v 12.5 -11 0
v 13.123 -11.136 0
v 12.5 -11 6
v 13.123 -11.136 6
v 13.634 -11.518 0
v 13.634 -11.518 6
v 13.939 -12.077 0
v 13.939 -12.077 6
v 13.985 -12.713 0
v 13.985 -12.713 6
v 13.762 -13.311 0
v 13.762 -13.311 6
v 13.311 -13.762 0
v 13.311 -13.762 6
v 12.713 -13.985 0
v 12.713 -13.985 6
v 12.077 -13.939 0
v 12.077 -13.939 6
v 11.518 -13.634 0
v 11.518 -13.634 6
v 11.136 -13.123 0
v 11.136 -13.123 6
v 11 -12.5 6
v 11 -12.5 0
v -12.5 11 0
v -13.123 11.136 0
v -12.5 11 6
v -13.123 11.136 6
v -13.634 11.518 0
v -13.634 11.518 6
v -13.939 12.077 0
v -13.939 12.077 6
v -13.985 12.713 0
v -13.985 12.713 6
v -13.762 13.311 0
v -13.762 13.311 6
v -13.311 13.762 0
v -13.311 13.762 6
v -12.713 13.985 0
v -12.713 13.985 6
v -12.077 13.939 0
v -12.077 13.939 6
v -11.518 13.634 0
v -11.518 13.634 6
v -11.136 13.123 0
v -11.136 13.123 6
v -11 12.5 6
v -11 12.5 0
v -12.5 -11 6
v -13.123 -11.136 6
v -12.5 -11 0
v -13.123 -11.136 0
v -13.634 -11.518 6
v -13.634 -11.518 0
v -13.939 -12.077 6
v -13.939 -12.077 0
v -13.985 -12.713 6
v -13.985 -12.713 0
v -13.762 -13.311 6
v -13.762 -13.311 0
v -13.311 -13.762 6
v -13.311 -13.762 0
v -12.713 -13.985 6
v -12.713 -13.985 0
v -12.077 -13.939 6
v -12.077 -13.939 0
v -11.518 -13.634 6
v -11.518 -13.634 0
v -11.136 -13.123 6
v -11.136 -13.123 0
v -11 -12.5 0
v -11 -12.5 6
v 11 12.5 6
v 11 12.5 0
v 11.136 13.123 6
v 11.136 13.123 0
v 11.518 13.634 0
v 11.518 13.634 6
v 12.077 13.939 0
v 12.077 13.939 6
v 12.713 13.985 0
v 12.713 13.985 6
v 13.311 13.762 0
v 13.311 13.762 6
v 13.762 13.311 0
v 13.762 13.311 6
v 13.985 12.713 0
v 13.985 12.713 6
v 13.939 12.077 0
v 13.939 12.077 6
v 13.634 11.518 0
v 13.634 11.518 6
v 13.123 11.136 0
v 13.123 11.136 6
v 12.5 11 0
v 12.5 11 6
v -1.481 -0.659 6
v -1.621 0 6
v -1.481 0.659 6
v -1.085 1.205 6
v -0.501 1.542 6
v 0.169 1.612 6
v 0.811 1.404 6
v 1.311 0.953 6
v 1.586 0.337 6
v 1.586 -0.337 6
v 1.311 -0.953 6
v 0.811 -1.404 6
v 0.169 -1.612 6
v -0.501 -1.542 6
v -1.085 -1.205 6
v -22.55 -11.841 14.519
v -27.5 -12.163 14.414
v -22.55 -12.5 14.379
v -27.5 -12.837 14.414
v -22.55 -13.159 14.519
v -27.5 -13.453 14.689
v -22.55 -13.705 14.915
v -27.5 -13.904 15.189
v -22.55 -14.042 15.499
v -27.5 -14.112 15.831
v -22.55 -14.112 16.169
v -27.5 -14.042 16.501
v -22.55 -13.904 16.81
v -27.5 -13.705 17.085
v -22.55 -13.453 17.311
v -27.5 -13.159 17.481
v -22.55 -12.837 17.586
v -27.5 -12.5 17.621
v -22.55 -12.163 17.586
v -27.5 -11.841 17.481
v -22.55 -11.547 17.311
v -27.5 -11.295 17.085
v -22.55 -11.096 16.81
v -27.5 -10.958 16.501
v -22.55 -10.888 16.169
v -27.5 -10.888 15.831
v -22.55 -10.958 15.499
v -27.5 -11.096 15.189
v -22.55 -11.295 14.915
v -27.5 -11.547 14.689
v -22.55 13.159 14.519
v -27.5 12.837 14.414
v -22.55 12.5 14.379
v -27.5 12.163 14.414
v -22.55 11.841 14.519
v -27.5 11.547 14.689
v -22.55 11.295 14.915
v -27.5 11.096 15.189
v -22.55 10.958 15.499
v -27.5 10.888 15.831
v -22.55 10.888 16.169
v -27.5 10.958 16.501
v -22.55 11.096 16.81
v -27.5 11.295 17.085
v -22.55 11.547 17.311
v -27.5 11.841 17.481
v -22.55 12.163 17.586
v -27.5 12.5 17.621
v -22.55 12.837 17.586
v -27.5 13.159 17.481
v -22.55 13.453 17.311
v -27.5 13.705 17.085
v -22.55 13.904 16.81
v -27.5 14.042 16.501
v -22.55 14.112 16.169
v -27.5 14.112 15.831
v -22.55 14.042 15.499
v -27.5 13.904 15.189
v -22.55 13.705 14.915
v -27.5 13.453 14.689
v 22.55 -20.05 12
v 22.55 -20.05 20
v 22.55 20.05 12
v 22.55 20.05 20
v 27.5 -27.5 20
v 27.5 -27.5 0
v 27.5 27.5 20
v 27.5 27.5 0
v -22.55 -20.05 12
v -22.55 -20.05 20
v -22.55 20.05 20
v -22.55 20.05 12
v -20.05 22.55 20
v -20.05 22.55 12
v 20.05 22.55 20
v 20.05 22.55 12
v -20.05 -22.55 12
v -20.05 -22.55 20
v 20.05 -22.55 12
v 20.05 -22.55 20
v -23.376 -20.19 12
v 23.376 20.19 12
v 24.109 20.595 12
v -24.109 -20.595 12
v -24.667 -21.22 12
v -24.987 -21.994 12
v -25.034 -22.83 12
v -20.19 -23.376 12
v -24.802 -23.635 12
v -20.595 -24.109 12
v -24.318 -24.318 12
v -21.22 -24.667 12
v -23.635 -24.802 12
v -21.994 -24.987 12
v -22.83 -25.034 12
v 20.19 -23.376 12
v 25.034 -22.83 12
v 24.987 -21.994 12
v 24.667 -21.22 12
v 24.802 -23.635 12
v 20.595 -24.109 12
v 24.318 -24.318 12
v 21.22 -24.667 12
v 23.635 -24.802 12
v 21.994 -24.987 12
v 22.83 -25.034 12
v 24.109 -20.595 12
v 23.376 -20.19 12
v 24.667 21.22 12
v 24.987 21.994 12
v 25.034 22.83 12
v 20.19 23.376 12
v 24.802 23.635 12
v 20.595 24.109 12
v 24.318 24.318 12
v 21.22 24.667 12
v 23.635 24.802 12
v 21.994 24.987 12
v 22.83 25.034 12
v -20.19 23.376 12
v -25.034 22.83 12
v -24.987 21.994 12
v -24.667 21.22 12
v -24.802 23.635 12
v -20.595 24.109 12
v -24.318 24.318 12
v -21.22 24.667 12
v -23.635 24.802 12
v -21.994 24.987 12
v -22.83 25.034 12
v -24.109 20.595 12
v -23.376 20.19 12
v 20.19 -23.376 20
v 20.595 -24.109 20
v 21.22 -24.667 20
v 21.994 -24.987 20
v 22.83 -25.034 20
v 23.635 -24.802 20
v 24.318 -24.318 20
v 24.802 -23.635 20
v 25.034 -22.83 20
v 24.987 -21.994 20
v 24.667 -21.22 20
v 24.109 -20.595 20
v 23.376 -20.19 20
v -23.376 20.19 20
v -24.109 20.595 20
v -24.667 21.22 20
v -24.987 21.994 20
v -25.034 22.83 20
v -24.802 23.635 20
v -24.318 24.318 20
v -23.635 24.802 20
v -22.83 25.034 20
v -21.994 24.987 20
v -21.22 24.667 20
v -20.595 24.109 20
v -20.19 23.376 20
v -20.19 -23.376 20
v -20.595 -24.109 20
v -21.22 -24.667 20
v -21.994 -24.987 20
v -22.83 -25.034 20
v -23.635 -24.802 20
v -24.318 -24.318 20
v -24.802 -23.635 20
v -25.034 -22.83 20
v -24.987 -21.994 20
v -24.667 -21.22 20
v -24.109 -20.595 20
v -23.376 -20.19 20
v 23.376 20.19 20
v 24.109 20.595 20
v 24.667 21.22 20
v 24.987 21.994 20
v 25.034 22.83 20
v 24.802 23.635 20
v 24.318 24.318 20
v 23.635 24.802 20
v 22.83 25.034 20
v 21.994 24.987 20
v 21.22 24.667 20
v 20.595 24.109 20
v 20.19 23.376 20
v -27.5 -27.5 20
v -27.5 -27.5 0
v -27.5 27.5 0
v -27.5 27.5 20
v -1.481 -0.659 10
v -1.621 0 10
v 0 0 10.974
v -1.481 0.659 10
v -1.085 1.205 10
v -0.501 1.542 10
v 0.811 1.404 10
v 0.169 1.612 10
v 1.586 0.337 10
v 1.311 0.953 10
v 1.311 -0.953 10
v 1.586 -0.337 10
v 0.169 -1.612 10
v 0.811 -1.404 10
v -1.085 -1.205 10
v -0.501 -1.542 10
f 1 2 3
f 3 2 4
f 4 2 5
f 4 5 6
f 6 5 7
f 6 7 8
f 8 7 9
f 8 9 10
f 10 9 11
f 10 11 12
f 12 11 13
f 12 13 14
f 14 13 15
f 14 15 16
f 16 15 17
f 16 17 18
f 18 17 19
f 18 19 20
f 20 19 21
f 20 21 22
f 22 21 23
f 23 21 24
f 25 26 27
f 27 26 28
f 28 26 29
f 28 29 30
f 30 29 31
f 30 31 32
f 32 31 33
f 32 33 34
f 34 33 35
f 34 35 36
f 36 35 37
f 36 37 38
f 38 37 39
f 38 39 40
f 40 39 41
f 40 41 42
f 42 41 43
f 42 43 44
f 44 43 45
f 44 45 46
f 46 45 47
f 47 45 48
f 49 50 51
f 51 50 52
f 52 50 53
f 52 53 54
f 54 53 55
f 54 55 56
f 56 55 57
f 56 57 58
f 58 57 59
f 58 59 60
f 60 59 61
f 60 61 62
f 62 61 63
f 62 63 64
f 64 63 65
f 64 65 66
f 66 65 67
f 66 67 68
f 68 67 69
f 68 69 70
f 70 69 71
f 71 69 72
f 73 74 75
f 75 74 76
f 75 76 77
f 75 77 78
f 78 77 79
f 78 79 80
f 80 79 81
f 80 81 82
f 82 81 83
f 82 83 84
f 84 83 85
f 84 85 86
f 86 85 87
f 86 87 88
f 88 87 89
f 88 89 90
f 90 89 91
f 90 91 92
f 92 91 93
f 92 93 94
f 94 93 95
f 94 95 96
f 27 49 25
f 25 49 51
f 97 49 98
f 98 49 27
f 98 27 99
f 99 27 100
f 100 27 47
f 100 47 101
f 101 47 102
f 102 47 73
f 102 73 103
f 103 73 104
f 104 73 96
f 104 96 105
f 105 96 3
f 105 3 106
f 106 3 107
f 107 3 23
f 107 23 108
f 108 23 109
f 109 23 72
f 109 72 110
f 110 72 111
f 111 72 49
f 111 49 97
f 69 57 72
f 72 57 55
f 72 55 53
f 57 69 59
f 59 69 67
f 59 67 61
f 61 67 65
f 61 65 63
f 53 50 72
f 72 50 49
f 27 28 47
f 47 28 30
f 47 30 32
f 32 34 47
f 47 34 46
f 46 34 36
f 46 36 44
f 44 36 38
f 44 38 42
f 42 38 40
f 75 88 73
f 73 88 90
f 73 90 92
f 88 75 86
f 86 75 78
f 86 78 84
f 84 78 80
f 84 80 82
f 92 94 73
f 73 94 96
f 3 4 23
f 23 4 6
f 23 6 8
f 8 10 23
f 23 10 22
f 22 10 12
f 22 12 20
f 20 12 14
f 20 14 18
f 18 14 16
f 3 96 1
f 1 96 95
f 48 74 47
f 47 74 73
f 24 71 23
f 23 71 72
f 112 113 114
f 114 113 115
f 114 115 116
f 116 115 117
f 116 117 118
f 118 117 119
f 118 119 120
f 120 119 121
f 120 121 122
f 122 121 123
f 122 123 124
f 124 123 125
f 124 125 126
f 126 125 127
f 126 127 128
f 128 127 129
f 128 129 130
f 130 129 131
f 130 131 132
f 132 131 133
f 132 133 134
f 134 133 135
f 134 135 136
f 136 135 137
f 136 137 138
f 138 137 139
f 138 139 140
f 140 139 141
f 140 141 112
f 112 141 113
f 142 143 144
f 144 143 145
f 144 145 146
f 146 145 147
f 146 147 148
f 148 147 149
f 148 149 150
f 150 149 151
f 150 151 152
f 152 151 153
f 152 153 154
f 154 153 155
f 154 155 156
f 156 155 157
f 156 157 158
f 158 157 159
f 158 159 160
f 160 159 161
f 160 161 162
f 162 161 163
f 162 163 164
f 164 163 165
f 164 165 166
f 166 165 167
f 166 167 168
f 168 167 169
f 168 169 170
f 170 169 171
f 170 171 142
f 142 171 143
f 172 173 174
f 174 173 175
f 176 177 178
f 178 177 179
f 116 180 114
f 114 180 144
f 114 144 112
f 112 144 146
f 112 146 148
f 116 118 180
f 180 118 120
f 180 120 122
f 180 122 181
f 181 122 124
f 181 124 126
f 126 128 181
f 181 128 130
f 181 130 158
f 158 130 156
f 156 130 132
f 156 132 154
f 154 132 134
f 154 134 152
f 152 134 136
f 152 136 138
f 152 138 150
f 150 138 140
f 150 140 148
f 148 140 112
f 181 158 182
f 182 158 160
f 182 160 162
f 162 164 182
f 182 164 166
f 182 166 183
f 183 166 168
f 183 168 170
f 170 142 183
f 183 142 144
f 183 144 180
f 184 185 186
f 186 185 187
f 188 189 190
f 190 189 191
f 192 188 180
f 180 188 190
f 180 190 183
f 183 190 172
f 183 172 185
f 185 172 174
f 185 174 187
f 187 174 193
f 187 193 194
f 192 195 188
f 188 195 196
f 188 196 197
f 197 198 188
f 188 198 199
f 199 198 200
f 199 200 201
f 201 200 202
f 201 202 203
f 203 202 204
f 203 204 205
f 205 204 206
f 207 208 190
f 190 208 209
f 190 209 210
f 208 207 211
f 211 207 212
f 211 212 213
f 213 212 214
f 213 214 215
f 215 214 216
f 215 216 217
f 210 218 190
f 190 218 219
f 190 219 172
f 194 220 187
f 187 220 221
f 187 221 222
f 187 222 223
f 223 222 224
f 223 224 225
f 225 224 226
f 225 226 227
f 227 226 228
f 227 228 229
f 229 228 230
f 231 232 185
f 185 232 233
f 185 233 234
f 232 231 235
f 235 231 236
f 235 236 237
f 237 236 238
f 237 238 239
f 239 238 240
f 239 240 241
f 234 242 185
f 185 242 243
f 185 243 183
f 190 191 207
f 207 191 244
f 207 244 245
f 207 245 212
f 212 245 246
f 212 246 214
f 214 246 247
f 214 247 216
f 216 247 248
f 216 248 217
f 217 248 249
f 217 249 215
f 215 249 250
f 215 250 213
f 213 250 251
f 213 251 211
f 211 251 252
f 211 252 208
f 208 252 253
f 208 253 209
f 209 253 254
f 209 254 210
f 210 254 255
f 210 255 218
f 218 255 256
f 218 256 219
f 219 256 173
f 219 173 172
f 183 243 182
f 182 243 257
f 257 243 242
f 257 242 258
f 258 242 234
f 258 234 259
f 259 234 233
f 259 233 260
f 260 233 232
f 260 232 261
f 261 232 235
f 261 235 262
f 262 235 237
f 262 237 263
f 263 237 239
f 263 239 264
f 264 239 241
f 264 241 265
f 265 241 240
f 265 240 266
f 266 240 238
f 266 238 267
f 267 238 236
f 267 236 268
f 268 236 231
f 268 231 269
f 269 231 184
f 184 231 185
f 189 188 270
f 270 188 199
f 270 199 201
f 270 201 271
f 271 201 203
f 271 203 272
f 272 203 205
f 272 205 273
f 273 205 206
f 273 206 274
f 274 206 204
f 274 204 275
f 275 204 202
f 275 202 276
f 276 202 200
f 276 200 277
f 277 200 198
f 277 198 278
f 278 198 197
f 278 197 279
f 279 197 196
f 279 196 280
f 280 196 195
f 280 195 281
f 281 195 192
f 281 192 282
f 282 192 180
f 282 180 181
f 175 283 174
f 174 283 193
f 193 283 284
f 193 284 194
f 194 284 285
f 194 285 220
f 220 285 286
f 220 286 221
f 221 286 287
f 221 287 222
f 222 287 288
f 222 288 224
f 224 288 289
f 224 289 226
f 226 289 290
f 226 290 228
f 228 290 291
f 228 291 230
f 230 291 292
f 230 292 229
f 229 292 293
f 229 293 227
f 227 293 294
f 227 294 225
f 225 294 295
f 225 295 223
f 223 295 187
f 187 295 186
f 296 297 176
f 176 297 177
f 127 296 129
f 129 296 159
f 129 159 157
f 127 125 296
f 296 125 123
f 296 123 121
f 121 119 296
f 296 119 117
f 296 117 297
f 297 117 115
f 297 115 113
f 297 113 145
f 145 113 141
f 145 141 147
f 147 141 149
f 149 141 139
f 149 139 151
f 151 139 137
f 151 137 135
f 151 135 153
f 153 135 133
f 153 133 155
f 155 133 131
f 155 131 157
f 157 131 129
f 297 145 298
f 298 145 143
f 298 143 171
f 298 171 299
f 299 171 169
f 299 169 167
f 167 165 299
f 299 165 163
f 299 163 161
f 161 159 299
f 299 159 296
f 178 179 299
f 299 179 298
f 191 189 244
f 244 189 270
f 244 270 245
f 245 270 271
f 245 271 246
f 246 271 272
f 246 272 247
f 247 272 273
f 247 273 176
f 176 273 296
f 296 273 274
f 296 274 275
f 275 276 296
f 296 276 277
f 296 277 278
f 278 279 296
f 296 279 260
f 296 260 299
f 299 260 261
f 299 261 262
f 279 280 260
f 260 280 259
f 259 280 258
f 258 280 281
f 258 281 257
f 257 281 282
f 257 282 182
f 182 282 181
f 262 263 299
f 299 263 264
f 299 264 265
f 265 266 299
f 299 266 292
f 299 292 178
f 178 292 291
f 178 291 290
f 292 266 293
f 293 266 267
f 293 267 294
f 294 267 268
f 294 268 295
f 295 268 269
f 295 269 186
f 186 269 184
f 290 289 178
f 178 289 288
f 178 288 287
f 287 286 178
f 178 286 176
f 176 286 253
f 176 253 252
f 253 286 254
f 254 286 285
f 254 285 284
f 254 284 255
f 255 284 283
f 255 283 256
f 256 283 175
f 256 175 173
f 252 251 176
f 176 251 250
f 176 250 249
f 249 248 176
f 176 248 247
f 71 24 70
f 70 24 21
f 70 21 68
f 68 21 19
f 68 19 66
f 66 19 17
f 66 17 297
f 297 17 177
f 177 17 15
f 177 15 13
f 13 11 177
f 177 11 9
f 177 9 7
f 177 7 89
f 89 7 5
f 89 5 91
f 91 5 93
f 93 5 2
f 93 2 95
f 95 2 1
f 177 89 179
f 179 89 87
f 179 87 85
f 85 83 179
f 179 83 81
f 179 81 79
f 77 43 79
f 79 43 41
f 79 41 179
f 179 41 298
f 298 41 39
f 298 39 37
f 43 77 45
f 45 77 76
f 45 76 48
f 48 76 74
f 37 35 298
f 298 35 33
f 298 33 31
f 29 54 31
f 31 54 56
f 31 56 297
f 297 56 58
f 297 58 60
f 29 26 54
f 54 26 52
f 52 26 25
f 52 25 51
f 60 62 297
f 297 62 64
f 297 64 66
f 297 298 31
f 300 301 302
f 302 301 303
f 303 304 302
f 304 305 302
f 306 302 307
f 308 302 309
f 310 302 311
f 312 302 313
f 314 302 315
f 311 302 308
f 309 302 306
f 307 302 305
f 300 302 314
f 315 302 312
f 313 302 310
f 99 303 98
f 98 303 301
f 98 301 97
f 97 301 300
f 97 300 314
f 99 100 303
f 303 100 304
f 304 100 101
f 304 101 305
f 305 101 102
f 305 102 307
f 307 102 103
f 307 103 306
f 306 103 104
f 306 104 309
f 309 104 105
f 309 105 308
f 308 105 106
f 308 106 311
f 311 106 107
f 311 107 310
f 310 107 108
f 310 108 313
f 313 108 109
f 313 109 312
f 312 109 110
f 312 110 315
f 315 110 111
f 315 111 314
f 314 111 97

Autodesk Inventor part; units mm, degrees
ref_plane "YZ Plane" through (0, 0, 0) normal (1, 0, 0) x (0, 1, 0)
ref_plane "XZ Plane" through (0, 0, 0) normal (0, 1, 0) x (-1, 0, 0)
ref_plane "XY Plane" through (0, 0, 0) normal (0, 0, 1) x (1, 0, 0)
sketch "Sketch1" plane through (0, 0, 0) normal (0, 0, 1) x (1, 0, 0)
  line L0 (0, 38.5) -> (0, -38.5) construction
  line L1 (-38.5, 0) -> (38.5, 0) construction
  line L2 (-27.5, 27.5) -> (27.5, 27.5)
  line L3 (27.5, 27.5) -> (27.5, -27.5)
  line L4 (27.5, -27.5) -> (-27.5, -27.5)
  line L5 (-27.5, -27.5) -> (-27.5, 27.5)
  point P0 (0, 0)
  dimension "d0" = 55
  dimension "d1" = 55
extrude "Extrusion1" add sketch "Sketch1" along normal blind 20
sketch "Sketch4" plane through (0, 0, 20) normal (0, 0, 1) x (1, 0, 0)
  line L0 (-38.5, 0) -> (38.5, 0) construction
  line L1 (0, 38.5) -> (0, -38.5) construction
  line L2 (-22.55, 22.55) -> (22.55, 22.55) construction
  line L3 (22.55, 22.55) -> (22.55, -22.55) construction
  line L4 (22.55, -22.55) -> (-22.55, -22.55) construction
  line L5 (-22.55, -22.55) -> (-22.55, 22.55) construction
  point P0 (0, 0)
  dimension "d15" = 45.1
  dimension "d16" = 45.1
hole "Hole2" at (-22.55, 22.55, 20) at (22.55, 22.55, 20) at (22.55, -22.55, 20) at (-22.55, -22.55, 20) at (-22.55, 22.55, 20) at (22.55, 22.55, 20) direction (0, 0, -1) diameter 5 depth 8
sketch "Sketch5" plane through (0, 0, 20) normal (0, 0, 1) x (1, 0, 0)
  circle A0 centre (-22.55, 22.55) radius 2.5 projected
  circle A1 centre (22.55, -22.55) radius 2.5 projected
  line L0 (-22.55, 22.55) -> (22.55, 22.55)
  line L1 (22.55, 22.55) -> (22.55, -22.55)
  line L2 (22.55, -22.55) -> (-22.55, -22.55)
  line L3 (-22.55, -22.55) -> (-22.55, 22.55)
  point P0 (0, 0)
extrude "Extrusion3" cut sketch "Sketch5" against normal blind 8 contours L0 L1 A1 L2 L3 A0 | A0 L3 L0 | L1 L2 A1 picked at (-20.9042, 22.3646) picked at (22.003, -20.9868)
sketch "Sketch6" plane through (-27.5, -27.5, 0) normal (-1, 0, 0) x (0, 0, 1)
  line L0 (0, 55) -> (20, 55) projected
  line L1 (0, 0) -> (20, 0) projected
  line L2 (20, 7.45) -> (12, 7.45) construction
  line L3 (20, 47.55) -> (20, 7.45) construction
  line L4 (12, 47.55) -> (20, 47.55) construction
  line L5 (12, 7.45) -> (12, 47.55) construction
  line L6 (16, 47.55) -> (16, 7.45) construction
  point P0 (0, 27.5)
  point P1 (16, 40)
  point P2 (16, 15)
  dimension "d26" = 15
  dimension "d27" = 15
hole "Hole3" at (-27.5, 12.5, 16) at (-27.5, -12.5, 16) direction (1, 0, 0) diameter 3.242 end up to surface thread size "M4x0.7" class "6H" standard "ANSI Metric M Profile"
sketch "Sketch8" plane through (0, 0, 0) normal (0, 0, -1) x (-1, 0, 0)
  line L0 (27.5, 27.5) -> (-27.5, 27.5) construction
  line L1 (-27.5, 27.5) -> (-27.5, -27.5) construction
  line L2 (-27.5, -27.5) -> (27.5, -27.5) construction
  line L3 (27.5, -27.5) -> (27.5, 27.5) construction
  line L4 (0, -38.5) -> (0, 38.5) construction
  line L5 (-38.5, 0) -> (38.5, 0) construction
  line L6 (-12.5, -12.5) -> (12.5, -12.5)
  line L7 (12.5, -12.5) -> (12.5, 12.5)
  line L8 (12.5, 12.5) -> (-12.5, 12.5)
  line L9 (-12.5, 12.5) -> (-12.5, -12.5)
  point P0 (0, 0)
  dimension "d44" = 25
  dimension "d45" = 25
extrude "Extrusion4" cut sketch "Sketch8" against normal blind 6
sketch "Sketch9" plane through (0, 0, 0) normal (0, 0, -1) x (-1, 0, 0)
  line L0 (12.5, 12.5) -> (12.5, -12.5) construction
  line L1 (12.5, -12.5) -> (-12.5, -12.5) construction
  line L2 (-12.5, -12.5) -> (-12.5, 12.5) construction
  line L3 (-12.5, 12.5) -> (12.5, 12.5) construction
  line L4 (27.5, 27.5) -> (-27.5, 27.5) construction
  line L5 (-27.5, 27.5) -> (-27.5, -27.5) construction
  line L6 (-27.5, -27.5) -> (27.5, -27.5) construction
  line L7 (27.5, -27.5) -> (27.5, 27.5) construction
  line L8 (12.5, -12.5) -> (-12.5, -12.5) construction
  point P0 (0, 0)
hole "Hole5" at (-12.5, 12.5, 0) at (-12.5, -12.5, 0) at (12.5, -12.5, 0) at (12.5, 12.5, 0) direction (0, 0, 1) diameter 3 depth 6
sketch "Sketch10" plane through (0, 0, 6) normal (0, 0, -1) x (-1, 0, 0)
  point P0 (0, 0)
  point P1 (0, 0)
hole "Hole6" at (0, 0, 6) direction (0, 0, 1) diameter 3.242 depth 4 tip angle 118 thread size "M4x0.7" class "6H" standard "ANSI Metric M Profile"
properties part number "Large-cuvette-mount-40mm-V3" material "PC/ABS Plastic"
